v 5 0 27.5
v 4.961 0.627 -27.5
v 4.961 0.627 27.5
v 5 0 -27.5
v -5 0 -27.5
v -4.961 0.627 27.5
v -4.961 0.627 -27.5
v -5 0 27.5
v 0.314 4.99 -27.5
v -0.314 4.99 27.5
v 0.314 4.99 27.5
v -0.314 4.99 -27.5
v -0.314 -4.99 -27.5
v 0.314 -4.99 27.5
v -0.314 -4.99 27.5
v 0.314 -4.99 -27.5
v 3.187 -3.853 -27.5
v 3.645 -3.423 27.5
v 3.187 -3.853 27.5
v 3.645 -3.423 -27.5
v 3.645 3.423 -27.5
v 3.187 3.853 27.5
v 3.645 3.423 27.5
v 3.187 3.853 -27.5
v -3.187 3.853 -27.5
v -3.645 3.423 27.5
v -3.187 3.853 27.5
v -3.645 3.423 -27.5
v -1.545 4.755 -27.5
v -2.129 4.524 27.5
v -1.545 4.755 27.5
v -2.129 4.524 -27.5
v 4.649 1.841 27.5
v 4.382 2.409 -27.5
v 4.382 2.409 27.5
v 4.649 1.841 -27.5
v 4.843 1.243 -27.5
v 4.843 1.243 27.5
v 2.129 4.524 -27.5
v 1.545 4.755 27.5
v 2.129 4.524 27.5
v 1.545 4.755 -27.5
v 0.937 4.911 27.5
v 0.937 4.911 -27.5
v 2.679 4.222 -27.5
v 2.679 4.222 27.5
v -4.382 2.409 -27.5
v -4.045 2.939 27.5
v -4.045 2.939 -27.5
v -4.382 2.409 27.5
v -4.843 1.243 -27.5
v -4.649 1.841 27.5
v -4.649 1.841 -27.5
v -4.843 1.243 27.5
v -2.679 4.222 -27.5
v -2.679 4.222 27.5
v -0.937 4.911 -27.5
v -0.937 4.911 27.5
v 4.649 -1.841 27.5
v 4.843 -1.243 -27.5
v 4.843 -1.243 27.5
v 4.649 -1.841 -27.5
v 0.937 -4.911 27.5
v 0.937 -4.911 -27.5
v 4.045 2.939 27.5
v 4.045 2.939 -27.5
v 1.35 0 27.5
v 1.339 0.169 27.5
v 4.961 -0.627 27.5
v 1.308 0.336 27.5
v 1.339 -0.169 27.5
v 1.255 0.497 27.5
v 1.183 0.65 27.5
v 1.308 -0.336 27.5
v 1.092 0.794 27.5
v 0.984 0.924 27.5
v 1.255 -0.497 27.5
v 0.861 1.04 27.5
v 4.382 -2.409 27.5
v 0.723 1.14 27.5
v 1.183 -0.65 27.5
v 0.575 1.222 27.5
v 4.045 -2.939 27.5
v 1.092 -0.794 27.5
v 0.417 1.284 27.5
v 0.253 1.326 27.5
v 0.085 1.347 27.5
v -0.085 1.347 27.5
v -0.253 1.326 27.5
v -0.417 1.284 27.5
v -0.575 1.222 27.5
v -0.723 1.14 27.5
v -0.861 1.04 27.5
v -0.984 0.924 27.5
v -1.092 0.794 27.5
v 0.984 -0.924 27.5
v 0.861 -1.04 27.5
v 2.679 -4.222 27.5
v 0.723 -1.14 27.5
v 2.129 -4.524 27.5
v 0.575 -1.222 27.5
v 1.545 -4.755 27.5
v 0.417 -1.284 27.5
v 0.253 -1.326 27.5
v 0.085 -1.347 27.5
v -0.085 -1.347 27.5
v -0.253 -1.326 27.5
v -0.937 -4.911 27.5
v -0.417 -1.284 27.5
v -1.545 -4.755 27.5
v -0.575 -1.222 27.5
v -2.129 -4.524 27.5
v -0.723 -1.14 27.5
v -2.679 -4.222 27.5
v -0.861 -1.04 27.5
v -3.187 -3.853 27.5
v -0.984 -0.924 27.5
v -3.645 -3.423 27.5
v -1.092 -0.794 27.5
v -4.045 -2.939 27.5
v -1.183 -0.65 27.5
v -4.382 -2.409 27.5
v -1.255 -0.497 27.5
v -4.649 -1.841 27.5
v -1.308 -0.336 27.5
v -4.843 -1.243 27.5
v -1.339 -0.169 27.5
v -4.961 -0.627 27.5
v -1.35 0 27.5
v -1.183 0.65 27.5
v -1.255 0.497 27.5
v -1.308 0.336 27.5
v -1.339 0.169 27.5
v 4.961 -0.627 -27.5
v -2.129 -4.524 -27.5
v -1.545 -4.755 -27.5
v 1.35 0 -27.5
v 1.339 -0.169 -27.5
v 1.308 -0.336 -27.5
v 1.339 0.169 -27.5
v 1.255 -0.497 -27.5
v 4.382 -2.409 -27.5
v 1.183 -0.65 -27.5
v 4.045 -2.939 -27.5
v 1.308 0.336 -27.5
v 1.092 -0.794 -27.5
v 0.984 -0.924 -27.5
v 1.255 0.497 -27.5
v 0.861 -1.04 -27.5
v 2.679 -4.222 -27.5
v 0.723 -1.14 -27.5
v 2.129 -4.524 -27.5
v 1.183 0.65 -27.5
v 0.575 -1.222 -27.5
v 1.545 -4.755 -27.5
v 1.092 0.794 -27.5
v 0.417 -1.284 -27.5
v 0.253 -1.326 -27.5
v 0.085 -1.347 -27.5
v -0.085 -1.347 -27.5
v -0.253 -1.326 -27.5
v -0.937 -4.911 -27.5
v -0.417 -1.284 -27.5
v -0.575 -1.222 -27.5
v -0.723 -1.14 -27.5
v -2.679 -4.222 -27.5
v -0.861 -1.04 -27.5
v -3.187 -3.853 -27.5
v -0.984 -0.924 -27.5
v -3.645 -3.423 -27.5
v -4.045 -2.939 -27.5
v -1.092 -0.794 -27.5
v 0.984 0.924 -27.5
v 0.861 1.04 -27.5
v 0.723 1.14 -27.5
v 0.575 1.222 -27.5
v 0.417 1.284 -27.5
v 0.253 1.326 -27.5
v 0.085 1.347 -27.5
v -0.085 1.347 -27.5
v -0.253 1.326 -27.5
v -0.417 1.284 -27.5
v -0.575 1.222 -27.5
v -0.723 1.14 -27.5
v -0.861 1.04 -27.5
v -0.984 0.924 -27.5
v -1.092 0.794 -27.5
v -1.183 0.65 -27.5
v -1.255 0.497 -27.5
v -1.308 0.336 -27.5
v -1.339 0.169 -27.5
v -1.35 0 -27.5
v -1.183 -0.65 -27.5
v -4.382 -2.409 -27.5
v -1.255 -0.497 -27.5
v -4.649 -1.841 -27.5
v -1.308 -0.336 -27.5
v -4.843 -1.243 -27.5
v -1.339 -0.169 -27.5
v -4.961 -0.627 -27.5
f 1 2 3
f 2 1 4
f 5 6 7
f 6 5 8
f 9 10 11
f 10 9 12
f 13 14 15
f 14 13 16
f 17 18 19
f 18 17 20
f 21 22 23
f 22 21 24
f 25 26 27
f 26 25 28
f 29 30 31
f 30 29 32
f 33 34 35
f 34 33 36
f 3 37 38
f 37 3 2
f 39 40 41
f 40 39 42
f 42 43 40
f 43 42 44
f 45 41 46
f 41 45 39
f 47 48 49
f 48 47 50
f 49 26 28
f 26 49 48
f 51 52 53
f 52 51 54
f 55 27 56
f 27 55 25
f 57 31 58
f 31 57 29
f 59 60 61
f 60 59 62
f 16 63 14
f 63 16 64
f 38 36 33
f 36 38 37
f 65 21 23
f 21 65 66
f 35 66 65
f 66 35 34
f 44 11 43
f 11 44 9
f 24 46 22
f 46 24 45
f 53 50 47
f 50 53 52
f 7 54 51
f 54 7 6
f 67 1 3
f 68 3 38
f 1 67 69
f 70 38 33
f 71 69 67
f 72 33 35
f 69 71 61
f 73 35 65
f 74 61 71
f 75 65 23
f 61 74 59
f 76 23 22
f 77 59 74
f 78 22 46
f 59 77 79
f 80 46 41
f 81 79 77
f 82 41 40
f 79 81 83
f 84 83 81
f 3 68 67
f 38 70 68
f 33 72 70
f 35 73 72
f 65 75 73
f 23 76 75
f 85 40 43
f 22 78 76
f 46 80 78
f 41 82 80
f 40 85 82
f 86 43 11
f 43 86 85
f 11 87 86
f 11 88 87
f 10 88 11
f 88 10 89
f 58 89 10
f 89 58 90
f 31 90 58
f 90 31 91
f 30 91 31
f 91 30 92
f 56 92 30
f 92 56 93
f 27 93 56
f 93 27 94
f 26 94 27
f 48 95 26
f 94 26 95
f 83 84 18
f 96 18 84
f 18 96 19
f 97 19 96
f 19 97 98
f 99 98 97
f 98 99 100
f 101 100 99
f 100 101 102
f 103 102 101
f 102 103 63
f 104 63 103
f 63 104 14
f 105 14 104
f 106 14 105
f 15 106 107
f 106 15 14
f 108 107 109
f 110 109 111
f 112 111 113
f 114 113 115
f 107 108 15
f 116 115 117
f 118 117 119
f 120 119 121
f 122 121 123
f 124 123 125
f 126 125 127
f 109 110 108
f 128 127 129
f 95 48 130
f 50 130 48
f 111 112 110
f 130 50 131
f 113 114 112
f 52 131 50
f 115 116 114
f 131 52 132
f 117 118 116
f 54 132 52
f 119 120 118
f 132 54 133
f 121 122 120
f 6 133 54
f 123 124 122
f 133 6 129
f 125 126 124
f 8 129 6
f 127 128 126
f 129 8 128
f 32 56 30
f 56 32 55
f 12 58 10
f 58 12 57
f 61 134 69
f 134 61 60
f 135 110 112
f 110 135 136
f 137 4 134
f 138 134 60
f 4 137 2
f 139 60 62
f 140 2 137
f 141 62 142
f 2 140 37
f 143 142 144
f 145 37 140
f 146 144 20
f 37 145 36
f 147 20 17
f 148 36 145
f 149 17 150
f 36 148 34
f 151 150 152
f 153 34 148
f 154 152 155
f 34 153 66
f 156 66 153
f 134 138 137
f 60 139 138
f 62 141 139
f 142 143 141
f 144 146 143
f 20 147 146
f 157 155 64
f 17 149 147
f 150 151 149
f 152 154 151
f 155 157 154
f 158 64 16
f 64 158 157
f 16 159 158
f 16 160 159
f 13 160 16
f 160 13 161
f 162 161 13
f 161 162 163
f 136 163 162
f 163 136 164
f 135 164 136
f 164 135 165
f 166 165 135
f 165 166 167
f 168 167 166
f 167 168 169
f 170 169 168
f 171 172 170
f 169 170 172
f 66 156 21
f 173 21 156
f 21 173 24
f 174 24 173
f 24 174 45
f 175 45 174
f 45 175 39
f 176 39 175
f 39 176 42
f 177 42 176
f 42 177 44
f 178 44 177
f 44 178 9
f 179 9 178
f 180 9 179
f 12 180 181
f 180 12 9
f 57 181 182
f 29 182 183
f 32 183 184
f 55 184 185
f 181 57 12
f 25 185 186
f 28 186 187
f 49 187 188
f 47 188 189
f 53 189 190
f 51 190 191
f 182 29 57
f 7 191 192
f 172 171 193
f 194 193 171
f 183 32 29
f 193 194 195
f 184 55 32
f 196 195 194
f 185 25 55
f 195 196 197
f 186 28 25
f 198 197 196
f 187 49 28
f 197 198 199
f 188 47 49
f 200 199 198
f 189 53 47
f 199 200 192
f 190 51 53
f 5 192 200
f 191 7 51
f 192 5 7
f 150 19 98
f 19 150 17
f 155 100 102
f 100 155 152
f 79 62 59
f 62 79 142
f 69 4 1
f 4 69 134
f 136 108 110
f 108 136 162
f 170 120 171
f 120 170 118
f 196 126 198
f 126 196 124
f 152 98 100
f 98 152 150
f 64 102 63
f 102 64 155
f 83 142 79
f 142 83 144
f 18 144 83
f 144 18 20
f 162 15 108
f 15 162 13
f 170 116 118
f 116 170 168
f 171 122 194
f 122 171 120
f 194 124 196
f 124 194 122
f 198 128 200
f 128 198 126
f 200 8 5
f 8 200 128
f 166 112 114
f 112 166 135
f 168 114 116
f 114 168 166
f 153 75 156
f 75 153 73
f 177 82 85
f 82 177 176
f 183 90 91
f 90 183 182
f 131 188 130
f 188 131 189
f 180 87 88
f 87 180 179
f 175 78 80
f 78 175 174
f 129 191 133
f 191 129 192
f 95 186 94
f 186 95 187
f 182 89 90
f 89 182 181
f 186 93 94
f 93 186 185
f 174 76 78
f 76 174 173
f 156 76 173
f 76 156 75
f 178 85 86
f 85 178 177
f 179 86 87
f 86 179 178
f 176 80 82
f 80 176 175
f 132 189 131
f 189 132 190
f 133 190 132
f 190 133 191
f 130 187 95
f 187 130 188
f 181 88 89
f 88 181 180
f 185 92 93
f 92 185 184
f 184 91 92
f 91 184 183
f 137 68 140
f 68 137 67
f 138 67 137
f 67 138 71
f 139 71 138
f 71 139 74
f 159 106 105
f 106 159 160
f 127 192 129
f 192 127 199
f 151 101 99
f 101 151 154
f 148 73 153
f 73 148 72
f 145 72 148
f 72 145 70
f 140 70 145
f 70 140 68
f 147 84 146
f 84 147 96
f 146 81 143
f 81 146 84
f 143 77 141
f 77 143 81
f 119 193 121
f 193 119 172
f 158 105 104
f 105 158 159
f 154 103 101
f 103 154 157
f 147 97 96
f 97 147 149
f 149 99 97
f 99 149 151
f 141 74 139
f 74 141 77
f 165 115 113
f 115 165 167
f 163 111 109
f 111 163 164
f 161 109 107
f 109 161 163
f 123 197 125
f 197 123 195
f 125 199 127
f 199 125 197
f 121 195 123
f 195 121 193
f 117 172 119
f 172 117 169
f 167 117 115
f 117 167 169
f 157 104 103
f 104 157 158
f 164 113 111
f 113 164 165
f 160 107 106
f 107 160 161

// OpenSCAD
$fn = 50;


difference() {
	union() {
		translate(v = [0, 0, -27.5000000000]) {
			cylinder(h = 55, r = 5.0000000000);
		}
	}
	union() {
		translate(v = [0, 0, -100.0000000000]) {
			cylinder(h = 200, r = 1.3500000000);
		}
	}
}
